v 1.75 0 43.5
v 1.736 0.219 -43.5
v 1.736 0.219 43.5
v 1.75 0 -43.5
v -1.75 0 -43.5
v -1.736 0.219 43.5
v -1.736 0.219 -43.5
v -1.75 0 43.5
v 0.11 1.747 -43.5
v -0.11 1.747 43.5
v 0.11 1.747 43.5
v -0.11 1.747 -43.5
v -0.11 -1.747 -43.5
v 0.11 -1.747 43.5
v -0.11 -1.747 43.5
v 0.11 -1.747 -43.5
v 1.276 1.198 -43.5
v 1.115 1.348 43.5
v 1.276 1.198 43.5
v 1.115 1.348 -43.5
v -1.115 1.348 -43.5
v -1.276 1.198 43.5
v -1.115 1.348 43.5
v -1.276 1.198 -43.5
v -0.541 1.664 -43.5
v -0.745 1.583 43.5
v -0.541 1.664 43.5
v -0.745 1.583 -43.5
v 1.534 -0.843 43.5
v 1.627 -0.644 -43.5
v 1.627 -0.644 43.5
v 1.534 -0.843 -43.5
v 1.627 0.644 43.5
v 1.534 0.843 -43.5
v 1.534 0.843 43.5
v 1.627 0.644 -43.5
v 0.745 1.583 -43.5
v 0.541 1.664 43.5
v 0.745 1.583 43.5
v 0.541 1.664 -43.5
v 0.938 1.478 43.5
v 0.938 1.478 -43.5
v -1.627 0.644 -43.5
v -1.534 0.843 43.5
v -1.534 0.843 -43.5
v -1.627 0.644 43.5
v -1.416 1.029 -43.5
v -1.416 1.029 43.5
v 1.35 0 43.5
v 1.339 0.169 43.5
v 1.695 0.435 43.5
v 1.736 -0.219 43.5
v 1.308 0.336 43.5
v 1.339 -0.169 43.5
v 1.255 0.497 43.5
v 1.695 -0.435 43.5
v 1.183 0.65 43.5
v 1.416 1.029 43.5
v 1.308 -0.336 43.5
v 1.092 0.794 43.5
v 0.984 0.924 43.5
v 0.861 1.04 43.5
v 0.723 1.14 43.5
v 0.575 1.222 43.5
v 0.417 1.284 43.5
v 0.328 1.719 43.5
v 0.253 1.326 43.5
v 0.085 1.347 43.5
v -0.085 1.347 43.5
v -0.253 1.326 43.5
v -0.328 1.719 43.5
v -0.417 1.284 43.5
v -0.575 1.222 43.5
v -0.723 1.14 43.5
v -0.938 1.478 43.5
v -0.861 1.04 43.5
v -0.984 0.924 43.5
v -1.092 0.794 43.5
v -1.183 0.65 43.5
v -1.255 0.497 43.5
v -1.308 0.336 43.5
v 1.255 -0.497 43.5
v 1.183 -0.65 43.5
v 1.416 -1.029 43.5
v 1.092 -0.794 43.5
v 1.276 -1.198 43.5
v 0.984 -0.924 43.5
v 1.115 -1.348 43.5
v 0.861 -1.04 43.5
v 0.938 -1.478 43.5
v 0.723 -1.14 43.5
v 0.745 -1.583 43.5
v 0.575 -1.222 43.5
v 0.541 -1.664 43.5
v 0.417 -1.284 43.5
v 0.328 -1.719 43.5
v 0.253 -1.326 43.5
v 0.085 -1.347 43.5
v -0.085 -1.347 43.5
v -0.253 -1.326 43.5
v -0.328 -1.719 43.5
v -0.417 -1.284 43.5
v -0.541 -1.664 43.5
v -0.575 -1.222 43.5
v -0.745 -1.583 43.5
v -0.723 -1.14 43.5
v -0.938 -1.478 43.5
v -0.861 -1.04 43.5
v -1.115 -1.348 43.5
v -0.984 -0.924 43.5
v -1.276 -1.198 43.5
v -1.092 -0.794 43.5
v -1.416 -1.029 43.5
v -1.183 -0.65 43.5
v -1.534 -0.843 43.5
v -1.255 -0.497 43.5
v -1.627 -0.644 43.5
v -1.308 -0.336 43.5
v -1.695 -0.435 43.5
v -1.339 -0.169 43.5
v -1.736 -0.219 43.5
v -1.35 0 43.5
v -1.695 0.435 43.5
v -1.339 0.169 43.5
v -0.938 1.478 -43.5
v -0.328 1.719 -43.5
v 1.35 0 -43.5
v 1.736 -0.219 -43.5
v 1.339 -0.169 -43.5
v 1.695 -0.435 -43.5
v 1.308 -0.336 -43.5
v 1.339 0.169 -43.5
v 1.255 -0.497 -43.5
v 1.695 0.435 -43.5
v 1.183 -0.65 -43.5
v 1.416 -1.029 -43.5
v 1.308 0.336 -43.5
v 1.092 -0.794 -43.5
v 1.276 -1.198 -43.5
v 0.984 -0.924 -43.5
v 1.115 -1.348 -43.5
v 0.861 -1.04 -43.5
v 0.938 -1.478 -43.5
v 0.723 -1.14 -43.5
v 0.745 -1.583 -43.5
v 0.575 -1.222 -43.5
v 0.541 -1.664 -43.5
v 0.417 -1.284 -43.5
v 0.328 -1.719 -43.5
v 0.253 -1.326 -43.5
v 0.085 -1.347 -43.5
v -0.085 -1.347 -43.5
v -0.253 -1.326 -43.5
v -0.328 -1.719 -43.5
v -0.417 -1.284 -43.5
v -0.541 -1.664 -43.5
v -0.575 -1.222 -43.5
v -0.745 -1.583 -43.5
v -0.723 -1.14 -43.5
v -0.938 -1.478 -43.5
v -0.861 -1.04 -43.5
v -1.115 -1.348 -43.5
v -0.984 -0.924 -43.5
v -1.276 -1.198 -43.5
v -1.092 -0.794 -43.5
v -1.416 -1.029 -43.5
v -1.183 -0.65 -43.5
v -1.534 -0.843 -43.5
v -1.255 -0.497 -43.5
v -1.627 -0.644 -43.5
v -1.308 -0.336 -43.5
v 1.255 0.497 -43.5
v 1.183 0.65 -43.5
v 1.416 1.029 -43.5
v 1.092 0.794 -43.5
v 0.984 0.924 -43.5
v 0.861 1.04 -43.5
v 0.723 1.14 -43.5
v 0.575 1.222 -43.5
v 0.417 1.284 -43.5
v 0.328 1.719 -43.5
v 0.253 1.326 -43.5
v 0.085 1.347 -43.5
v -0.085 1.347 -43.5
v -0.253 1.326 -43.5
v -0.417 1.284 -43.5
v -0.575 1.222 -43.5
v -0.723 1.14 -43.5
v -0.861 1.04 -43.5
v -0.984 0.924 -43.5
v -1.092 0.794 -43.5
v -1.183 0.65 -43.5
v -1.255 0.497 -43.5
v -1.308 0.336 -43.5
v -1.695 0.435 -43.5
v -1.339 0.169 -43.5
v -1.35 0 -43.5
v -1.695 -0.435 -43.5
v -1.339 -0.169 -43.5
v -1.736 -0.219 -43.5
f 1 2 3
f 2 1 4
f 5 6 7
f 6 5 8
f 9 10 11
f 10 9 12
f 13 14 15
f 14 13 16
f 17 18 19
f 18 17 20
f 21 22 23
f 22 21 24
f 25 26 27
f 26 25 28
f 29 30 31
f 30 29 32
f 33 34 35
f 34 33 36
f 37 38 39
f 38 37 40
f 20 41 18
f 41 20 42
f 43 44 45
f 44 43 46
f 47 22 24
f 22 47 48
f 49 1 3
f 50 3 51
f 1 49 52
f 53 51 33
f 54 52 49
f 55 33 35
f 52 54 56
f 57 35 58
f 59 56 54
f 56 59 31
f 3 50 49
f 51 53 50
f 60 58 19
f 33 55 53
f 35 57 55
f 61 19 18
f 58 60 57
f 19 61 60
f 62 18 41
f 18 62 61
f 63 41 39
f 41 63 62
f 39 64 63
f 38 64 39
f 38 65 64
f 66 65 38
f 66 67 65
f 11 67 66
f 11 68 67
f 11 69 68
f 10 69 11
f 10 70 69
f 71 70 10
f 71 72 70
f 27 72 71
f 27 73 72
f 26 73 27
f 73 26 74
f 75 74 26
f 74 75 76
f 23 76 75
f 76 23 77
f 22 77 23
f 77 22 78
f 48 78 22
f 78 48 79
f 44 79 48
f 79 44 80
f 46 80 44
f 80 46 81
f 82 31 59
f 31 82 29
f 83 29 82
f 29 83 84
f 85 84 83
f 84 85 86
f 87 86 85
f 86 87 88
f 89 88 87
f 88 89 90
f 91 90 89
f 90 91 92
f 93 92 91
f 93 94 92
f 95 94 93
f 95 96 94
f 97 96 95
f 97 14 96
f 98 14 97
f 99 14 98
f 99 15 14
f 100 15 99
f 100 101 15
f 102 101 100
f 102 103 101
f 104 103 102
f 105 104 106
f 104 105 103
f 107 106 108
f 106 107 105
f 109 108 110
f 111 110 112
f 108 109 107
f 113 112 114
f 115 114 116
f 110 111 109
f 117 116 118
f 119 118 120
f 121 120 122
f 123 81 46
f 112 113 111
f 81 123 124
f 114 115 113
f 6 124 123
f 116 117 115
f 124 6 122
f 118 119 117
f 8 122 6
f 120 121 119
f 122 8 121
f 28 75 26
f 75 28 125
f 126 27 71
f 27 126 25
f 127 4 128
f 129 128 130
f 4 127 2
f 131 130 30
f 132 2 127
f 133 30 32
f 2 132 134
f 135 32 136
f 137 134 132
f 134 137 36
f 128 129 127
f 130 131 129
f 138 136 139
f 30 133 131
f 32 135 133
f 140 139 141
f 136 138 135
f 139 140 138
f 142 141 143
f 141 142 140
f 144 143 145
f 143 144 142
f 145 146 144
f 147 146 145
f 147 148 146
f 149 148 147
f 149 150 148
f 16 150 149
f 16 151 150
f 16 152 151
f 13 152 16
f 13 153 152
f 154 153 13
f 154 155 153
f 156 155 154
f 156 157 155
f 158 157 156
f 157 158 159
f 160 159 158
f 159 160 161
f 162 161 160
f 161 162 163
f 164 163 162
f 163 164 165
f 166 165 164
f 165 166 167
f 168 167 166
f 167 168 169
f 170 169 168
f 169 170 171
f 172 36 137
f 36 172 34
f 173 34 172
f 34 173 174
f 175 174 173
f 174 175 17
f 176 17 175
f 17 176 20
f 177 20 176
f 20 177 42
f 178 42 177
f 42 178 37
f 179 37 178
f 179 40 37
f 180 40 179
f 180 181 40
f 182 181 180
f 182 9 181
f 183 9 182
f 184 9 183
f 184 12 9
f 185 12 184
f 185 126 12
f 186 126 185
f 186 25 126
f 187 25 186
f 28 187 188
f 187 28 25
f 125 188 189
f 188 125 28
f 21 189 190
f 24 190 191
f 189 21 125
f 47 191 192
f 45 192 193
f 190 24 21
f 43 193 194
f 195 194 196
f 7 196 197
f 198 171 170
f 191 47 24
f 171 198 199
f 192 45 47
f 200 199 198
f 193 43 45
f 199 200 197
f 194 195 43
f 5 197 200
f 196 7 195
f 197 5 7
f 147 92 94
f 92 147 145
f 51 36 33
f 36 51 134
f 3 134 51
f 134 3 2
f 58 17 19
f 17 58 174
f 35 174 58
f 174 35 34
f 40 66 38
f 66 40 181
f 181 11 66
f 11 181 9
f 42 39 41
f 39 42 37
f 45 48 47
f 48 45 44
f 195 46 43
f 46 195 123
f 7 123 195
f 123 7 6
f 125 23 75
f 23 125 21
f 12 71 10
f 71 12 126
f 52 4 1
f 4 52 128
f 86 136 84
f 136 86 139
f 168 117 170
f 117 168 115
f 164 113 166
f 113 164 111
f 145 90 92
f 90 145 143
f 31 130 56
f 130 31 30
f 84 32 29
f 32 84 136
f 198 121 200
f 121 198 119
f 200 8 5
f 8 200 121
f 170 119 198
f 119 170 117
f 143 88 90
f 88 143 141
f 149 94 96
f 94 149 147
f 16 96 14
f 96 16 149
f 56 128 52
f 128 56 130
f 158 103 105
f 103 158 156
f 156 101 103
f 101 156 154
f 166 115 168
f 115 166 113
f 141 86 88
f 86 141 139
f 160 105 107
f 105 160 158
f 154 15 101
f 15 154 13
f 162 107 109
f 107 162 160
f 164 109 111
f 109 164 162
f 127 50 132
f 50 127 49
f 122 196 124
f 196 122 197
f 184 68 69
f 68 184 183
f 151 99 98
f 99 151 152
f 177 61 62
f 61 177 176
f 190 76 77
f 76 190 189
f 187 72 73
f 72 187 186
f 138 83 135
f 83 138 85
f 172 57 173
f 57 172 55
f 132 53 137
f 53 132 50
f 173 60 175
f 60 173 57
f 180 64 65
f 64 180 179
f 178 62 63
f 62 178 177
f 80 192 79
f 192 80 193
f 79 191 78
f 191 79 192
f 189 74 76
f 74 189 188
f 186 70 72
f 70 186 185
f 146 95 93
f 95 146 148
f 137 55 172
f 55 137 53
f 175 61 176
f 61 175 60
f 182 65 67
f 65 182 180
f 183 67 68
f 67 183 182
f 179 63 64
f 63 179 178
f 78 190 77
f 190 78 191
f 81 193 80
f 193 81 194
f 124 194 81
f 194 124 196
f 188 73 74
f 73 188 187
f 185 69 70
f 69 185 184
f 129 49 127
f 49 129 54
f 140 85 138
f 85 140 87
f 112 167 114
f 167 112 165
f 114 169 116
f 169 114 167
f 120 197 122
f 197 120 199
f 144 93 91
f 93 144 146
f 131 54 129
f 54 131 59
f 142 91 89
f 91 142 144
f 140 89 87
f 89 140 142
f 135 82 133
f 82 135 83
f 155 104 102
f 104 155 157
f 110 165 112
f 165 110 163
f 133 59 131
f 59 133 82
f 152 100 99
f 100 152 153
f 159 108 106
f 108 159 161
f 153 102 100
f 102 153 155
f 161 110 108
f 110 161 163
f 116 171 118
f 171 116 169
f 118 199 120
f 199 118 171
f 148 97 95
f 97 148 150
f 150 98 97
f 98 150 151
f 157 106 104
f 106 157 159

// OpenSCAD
$fn = 50;


difference() {
	union() {
		translate(v = [0, 0, -43.5000000000]) {
			cylinder(h = 87, r = 1.7500000000);
		}
	}
	union() {
		translate(v = [0, 0, -100.0000000000]) {
			cylinder(h = 200, r = 1.3500000000);
		}
	}
}
